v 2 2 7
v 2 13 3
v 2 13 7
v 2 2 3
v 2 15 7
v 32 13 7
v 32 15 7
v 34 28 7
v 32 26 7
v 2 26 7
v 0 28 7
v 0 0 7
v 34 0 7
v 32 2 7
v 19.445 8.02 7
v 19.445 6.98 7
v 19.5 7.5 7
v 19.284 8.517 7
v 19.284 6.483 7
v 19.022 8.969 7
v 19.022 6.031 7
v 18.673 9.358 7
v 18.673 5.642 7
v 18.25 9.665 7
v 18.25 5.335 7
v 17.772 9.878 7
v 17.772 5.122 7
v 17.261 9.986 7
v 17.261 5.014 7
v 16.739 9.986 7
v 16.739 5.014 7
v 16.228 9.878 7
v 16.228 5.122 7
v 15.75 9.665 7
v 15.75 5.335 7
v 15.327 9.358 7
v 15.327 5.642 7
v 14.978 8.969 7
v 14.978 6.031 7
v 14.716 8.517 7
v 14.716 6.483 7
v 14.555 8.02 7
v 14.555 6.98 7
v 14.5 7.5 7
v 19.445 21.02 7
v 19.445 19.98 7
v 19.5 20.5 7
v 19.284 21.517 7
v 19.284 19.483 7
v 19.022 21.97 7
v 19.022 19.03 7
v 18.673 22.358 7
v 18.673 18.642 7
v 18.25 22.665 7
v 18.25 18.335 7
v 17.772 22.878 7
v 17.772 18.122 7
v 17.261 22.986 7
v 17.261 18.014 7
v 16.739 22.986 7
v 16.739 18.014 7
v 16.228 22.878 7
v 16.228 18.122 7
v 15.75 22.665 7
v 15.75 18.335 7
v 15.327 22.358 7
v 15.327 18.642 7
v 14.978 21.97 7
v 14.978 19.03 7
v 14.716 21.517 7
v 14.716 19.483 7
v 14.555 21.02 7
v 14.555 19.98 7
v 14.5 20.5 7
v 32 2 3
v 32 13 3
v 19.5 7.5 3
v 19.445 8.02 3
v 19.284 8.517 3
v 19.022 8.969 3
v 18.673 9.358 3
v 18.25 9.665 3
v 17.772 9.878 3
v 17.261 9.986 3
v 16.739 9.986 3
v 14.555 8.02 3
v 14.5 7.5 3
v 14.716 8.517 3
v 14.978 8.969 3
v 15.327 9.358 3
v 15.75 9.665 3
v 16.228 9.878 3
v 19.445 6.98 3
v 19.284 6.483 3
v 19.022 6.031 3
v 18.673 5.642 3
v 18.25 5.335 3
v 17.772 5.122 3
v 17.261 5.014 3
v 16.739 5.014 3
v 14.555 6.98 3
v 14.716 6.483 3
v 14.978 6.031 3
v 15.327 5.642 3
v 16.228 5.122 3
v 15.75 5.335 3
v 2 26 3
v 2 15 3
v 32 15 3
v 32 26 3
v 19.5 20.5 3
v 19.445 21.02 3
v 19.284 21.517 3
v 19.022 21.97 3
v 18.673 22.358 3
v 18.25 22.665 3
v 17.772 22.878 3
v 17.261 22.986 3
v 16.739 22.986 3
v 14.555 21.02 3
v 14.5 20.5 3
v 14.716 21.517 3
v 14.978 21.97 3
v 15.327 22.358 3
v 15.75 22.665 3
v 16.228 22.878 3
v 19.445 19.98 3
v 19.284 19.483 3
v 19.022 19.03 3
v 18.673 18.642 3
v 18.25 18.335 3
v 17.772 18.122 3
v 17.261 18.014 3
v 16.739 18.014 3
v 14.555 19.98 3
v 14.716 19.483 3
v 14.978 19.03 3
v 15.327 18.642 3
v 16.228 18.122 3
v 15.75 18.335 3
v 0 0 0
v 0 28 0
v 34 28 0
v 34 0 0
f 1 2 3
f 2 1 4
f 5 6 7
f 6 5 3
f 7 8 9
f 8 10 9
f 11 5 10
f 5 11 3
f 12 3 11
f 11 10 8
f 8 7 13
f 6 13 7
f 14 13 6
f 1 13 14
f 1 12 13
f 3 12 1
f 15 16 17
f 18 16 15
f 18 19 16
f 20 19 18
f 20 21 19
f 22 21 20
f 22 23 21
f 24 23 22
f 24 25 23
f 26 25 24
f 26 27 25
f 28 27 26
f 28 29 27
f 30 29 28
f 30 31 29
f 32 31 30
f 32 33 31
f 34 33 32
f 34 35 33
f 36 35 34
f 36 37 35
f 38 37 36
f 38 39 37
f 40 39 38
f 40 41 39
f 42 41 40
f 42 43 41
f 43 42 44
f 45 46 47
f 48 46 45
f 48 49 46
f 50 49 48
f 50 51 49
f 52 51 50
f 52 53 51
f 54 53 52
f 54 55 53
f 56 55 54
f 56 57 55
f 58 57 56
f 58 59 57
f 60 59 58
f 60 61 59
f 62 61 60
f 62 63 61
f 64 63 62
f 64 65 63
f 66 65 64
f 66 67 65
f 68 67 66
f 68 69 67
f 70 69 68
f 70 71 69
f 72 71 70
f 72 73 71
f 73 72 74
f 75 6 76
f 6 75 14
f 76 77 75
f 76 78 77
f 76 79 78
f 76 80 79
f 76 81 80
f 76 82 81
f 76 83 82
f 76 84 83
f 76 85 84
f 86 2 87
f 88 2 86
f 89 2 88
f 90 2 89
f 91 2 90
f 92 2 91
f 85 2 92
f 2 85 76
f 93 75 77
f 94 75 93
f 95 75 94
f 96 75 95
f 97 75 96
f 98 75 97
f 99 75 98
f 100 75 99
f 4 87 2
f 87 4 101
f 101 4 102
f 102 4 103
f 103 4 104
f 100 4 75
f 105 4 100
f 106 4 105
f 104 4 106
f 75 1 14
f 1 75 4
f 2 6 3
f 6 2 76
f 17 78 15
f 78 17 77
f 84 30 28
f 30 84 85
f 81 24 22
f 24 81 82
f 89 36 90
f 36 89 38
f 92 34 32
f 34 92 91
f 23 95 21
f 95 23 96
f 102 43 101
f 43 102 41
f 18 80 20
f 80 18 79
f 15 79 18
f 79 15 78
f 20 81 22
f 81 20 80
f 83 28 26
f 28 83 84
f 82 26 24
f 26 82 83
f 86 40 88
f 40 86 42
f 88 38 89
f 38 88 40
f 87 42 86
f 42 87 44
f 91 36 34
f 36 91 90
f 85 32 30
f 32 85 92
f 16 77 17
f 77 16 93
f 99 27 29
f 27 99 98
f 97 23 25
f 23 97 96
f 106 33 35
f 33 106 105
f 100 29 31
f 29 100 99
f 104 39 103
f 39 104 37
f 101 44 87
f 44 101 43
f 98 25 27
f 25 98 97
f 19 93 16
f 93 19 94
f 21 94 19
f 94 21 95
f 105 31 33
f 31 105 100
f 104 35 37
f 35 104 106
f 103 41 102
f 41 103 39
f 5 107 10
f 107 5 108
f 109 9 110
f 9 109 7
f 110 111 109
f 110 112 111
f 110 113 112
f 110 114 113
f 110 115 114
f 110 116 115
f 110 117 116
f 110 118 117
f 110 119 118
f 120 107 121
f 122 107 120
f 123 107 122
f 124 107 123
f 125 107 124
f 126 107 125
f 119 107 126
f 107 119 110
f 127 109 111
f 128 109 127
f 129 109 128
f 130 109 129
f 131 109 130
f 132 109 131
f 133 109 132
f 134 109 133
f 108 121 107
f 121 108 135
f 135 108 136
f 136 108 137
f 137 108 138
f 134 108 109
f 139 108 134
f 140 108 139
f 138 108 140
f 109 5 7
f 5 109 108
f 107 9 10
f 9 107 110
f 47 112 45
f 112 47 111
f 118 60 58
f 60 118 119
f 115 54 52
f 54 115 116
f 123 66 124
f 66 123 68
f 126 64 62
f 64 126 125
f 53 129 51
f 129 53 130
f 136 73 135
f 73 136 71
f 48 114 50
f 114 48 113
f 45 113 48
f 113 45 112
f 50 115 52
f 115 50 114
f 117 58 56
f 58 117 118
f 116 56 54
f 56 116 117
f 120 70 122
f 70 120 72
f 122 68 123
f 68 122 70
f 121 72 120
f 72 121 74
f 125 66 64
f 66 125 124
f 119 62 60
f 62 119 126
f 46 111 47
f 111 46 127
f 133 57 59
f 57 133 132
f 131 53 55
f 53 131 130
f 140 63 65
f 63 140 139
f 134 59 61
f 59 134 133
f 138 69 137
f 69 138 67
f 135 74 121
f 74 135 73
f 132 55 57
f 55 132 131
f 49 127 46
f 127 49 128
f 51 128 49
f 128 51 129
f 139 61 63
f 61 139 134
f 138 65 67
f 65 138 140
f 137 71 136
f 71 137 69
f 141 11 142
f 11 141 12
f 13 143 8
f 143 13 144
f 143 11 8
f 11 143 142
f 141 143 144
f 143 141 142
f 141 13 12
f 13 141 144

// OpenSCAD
$fn=30;
difference(){
    cube([34,28,7]);
    translate([2,2,3]) difference(){
        cube([30,11,4]);
        translate([15,5.5,0]) cylinder(r=2.5, h=4);
    }
    translate([2,15,3]) difference(){
        cube([30,11,4]);
        translate([15,5.5,0]) cylinder(r=2.5, h=4);
    }
}
